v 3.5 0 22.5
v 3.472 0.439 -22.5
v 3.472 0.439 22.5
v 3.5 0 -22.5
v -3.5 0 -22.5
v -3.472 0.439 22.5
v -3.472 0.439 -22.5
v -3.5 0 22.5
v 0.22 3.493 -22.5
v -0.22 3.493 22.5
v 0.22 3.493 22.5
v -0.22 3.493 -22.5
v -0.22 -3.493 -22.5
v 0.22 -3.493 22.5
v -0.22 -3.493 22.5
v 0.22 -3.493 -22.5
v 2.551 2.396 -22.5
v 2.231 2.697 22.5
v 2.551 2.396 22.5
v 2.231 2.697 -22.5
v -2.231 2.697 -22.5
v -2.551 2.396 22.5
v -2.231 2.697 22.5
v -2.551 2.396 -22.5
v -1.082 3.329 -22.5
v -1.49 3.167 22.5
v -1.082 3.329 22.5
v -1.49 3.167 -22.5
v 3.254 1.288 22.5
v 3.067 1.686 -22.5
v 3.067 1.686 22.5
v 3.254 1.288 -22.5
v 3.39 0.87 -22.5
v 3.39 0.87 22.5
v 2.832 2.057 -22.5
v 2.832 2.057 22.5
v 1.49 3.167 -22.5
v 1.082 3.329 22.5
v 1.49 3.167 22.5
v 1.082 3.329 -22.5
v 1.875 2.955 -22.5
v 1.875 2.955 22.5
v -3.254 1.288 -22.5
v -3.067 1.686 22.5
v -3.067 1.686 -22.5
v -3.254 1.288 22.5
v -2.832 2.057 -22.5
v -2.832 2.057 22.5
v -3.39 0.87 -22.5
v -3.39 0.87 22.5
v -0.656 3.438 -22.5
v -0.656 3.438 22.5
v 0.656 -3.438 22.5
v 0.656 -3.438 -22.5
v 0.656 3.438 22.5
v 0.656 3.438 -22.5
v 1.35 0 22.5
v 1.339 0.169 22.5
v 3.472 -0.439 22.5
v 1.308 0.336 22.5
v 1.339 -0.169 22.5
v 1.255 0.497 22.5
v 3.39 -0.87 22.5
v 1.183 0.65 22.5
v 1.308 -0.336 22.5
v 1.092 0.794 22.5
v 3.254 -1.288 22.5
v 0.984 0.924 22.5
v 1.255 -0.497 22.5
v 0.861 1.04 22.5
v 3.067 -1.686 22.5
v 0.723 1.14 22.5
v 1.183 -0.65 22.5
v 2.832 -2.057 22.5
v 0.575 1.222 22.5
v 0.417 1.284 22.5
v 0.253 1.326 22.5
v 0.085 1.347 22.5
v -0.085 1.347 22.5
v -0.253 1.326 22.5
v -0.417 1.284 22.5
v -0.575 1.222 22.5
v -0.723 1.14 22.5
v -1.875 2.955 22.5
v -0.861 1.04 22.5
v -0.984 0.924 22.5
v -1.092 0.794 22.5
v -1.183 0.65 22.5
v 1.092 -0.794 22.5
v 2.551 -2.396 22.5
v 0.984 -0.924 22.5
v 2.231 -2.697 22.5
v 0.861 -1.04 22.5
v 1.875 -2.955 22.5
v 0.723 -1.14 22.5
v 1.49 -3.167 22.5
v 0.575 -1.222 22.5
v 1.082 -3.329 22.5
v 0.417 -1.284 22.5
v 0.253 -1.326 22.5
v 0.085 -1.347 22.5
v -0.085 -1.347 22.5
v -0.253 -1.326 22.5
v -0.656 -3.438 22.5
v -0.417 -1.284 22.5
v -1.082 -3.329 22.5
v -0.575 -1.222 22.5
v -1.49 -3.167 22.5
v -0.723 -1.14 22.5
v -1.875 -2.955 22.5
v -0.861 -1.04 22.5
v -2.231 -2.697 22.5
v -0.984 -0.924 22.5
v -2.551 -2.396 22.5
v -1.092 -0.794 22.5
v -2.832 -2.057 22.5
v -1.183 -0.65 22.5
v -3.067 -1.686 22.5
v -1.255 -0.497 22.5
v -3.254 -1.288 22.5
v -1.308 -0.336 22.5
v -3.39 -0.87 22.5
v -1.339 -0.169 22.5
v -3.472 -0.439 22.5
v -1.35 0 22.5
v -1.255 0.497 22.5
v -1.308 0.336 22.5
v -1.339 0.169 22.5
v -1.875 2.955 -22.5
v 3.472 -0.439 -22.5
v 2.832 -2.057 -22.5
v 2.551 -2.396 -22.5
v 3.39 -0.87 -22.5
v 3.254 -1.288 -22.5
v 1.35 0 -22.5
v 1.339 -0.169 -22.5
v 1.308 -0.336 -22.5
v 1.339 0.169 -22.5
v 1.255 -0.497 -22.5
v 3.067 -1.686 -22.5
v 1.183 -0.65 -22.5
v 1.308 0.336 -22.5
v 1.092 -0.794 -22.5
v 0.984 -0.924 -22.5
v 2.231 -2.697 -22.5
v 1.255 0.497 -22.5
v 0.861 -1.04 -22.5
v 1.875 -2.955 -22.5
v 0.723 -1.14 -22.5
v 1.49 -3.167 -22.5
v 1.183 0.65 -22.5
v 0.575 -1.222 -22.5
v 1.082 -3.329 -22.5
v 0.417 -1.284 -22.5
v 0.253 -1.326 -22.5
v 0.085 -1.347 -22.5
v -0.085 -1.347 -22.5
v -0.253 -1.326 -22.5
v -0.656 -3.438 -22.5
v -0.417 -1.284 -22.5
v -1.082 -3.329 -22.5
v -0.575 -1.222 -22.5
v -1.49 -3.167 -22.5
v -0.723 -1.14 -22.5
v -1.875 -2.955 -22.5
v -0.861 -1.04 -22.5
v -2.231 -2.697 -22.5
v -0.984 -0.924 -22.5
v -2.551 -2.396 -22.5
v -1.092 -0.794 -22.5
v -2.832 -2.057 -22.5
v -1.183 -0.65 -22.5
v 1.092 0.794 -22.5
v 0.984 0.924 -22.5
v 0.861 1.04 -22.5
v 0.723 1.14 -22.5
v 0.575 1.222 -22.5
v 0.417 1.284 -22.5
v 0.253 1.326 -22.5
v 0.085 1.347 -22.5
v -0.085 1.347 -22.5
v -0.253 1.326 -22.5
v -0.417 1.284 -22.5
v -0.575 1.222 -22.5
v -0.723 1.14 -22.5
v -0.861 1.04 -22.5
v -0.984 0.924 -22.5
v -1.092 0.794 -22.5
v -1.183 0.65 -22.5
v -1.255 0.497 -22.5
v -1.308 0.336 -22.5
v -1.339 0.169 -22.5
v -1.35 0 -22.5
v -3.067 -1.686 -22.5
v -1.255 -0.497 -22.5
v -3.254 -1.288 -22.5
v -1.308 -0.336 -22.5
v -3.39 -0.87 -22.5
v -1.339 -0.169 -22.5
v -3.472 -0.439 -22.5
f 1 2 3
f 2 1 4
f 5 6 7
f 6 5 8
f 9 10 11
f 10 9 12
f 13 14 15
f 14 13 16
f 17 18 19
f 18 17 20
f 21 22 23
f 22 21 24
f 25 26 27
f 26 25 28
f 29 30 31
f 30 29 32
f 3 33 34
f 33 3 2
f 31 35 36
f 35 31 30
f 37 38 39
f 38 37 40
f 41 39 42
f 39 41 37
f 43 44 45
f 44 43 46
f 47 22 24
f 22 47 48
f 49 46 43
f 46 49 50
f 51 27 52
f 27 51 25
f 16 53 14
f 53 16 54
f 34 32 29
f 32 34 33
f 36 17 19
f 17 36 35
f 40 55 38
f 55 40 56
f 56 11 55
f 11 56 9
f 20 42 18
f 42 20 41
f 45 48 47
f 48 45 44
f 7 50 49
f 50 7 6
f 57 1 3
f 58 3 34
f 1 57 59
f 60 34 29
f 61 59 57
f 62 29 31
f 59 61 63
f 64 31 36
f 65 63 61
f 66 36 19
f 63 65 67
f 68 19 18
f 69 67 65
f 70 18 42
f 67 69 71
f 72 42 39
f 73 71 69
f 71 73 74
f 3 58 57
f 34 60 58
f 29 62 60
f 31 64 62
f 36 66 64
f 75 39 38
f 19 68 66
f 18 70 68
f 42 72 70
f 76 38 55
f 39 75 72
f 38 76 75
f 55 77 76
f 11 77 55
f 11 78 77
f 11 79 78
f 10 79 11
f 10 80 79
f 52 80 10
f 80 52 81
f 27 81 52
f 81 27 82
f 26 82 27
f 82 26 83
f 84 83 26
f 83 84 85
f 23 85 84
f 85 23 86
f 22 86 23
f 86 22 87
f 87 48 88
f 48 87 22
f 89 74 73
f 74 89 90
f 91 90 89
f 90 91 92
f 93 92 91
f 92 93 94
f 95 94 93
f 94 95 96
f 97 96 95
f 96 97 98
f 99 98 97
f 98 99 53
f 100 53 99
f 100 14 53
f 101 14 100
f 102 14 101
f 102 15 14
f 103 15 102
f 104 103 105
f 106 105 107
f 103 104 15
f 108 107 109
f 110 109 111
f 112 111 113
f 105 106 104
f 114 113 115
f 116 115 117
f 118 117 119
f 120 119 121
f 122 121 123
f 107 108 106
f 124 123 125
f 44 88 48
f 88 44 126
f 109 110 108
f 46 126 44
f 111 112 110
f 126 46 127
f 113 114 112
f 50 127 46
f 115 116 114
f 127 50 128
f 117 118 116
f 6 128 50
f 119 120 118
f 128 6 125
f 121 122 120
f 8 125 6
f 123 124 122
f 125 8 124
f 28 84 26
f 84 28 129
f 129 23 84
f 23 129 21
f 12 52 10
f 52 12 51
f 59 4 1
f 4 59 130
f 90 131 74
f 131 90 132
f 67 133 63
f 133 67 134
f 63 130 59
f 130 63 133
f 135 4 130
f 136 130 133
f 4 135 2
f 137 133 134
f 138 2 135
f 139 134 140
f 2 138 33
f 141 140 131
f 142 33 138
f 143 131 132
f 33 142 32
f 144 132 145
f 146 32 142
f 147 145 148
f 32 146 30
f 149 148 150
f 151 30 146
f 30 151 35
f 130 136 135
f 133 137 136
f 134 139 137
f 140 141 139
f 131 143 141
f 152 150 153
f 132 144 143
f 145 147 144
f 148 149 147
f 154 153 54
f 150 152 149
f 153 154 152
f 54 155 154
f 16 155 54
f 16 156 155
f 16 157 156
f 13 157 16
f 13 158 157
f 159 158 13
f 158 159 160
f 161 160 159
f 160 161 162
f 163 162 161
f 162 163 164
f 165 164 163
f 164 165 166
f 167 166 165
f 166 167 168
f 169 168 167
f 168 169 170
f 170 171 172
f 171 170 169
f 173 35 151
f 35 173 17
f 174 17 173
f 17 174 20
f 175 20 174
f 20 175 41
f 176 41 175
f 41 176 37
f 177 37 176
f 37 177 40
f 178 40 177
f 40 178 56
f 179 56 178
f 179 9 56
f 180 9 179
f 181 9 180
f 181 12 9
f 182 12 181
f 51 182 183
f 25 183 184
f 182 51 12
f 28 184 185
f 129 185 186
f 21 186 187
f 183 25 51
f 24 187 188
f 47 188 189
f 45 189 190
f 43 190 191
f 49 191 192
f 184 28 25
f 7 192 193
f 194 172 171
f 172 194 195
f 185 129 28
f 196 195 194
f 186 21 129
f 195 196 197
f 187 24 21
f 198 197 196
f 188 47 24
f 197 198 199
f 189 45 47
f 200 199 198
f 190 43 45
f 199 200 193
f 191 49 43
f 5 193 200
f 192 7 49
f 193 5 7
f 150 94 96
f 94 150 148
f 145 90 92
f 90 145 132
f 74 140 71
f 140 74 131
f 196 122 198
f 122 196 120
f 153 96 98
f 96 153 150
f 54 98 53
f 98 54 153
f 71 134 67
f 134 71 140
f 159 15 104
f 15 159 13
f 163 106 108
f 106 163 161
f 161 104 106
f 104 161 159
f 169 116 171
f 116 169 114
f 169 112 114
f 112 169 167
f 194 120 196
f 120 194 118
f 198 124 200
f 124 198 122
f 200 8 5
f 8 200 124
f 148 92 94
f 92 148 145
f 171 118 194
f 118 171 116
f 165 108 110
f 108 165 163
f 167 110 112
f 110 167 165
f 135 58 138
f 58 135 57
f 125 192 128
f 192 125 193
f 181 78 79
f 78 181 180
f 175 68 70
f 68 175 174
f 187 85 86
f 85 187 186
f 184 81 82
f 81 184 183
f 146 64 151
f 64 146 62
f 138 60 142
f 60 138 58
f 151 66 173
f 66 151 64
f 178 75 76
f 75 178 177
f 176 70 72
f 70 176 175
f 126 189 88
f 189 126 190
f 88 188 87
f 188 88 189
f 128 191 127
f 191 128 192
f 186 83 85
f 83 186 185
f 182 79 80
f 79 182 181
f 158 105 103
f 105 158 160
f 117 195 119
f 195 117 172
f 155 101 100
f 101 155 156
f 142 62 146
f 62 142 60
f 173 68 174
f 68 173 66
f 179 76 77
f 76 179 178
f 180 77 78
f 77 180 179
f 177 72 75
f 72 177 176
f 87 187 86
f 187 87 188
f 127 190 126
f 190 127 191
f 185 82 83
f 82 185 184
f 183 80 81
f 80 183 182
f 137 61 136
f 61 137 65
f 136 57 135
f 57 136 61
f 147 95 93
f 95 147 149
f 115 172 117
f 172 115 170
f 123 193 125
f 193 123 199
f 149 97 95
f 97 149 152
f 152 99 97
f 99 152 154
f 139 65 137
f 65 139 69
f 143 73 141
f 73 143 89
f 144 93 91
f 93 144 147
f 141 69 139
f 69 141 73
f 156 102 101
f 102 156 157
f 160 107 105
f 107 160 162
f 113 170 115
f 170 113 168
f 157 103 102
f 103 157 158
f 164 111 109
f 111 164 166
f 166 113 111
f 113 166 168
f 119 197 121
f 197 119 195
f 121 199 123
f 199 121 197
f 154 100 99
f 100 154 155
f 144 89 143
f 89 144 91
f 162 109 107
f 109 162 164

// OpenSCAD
$fn = 50;


difference() {
	union() {
		translate(v = [0, 0, -22.5000000000]) {
			cylinder(h = 45, r = 3.5000000000);
		}
	}
	union() {
		translate(v = [0, 0, -100.0000000000]) {
			cylinder(h = 200, r = 1.3500000000);
		}
	}
}
